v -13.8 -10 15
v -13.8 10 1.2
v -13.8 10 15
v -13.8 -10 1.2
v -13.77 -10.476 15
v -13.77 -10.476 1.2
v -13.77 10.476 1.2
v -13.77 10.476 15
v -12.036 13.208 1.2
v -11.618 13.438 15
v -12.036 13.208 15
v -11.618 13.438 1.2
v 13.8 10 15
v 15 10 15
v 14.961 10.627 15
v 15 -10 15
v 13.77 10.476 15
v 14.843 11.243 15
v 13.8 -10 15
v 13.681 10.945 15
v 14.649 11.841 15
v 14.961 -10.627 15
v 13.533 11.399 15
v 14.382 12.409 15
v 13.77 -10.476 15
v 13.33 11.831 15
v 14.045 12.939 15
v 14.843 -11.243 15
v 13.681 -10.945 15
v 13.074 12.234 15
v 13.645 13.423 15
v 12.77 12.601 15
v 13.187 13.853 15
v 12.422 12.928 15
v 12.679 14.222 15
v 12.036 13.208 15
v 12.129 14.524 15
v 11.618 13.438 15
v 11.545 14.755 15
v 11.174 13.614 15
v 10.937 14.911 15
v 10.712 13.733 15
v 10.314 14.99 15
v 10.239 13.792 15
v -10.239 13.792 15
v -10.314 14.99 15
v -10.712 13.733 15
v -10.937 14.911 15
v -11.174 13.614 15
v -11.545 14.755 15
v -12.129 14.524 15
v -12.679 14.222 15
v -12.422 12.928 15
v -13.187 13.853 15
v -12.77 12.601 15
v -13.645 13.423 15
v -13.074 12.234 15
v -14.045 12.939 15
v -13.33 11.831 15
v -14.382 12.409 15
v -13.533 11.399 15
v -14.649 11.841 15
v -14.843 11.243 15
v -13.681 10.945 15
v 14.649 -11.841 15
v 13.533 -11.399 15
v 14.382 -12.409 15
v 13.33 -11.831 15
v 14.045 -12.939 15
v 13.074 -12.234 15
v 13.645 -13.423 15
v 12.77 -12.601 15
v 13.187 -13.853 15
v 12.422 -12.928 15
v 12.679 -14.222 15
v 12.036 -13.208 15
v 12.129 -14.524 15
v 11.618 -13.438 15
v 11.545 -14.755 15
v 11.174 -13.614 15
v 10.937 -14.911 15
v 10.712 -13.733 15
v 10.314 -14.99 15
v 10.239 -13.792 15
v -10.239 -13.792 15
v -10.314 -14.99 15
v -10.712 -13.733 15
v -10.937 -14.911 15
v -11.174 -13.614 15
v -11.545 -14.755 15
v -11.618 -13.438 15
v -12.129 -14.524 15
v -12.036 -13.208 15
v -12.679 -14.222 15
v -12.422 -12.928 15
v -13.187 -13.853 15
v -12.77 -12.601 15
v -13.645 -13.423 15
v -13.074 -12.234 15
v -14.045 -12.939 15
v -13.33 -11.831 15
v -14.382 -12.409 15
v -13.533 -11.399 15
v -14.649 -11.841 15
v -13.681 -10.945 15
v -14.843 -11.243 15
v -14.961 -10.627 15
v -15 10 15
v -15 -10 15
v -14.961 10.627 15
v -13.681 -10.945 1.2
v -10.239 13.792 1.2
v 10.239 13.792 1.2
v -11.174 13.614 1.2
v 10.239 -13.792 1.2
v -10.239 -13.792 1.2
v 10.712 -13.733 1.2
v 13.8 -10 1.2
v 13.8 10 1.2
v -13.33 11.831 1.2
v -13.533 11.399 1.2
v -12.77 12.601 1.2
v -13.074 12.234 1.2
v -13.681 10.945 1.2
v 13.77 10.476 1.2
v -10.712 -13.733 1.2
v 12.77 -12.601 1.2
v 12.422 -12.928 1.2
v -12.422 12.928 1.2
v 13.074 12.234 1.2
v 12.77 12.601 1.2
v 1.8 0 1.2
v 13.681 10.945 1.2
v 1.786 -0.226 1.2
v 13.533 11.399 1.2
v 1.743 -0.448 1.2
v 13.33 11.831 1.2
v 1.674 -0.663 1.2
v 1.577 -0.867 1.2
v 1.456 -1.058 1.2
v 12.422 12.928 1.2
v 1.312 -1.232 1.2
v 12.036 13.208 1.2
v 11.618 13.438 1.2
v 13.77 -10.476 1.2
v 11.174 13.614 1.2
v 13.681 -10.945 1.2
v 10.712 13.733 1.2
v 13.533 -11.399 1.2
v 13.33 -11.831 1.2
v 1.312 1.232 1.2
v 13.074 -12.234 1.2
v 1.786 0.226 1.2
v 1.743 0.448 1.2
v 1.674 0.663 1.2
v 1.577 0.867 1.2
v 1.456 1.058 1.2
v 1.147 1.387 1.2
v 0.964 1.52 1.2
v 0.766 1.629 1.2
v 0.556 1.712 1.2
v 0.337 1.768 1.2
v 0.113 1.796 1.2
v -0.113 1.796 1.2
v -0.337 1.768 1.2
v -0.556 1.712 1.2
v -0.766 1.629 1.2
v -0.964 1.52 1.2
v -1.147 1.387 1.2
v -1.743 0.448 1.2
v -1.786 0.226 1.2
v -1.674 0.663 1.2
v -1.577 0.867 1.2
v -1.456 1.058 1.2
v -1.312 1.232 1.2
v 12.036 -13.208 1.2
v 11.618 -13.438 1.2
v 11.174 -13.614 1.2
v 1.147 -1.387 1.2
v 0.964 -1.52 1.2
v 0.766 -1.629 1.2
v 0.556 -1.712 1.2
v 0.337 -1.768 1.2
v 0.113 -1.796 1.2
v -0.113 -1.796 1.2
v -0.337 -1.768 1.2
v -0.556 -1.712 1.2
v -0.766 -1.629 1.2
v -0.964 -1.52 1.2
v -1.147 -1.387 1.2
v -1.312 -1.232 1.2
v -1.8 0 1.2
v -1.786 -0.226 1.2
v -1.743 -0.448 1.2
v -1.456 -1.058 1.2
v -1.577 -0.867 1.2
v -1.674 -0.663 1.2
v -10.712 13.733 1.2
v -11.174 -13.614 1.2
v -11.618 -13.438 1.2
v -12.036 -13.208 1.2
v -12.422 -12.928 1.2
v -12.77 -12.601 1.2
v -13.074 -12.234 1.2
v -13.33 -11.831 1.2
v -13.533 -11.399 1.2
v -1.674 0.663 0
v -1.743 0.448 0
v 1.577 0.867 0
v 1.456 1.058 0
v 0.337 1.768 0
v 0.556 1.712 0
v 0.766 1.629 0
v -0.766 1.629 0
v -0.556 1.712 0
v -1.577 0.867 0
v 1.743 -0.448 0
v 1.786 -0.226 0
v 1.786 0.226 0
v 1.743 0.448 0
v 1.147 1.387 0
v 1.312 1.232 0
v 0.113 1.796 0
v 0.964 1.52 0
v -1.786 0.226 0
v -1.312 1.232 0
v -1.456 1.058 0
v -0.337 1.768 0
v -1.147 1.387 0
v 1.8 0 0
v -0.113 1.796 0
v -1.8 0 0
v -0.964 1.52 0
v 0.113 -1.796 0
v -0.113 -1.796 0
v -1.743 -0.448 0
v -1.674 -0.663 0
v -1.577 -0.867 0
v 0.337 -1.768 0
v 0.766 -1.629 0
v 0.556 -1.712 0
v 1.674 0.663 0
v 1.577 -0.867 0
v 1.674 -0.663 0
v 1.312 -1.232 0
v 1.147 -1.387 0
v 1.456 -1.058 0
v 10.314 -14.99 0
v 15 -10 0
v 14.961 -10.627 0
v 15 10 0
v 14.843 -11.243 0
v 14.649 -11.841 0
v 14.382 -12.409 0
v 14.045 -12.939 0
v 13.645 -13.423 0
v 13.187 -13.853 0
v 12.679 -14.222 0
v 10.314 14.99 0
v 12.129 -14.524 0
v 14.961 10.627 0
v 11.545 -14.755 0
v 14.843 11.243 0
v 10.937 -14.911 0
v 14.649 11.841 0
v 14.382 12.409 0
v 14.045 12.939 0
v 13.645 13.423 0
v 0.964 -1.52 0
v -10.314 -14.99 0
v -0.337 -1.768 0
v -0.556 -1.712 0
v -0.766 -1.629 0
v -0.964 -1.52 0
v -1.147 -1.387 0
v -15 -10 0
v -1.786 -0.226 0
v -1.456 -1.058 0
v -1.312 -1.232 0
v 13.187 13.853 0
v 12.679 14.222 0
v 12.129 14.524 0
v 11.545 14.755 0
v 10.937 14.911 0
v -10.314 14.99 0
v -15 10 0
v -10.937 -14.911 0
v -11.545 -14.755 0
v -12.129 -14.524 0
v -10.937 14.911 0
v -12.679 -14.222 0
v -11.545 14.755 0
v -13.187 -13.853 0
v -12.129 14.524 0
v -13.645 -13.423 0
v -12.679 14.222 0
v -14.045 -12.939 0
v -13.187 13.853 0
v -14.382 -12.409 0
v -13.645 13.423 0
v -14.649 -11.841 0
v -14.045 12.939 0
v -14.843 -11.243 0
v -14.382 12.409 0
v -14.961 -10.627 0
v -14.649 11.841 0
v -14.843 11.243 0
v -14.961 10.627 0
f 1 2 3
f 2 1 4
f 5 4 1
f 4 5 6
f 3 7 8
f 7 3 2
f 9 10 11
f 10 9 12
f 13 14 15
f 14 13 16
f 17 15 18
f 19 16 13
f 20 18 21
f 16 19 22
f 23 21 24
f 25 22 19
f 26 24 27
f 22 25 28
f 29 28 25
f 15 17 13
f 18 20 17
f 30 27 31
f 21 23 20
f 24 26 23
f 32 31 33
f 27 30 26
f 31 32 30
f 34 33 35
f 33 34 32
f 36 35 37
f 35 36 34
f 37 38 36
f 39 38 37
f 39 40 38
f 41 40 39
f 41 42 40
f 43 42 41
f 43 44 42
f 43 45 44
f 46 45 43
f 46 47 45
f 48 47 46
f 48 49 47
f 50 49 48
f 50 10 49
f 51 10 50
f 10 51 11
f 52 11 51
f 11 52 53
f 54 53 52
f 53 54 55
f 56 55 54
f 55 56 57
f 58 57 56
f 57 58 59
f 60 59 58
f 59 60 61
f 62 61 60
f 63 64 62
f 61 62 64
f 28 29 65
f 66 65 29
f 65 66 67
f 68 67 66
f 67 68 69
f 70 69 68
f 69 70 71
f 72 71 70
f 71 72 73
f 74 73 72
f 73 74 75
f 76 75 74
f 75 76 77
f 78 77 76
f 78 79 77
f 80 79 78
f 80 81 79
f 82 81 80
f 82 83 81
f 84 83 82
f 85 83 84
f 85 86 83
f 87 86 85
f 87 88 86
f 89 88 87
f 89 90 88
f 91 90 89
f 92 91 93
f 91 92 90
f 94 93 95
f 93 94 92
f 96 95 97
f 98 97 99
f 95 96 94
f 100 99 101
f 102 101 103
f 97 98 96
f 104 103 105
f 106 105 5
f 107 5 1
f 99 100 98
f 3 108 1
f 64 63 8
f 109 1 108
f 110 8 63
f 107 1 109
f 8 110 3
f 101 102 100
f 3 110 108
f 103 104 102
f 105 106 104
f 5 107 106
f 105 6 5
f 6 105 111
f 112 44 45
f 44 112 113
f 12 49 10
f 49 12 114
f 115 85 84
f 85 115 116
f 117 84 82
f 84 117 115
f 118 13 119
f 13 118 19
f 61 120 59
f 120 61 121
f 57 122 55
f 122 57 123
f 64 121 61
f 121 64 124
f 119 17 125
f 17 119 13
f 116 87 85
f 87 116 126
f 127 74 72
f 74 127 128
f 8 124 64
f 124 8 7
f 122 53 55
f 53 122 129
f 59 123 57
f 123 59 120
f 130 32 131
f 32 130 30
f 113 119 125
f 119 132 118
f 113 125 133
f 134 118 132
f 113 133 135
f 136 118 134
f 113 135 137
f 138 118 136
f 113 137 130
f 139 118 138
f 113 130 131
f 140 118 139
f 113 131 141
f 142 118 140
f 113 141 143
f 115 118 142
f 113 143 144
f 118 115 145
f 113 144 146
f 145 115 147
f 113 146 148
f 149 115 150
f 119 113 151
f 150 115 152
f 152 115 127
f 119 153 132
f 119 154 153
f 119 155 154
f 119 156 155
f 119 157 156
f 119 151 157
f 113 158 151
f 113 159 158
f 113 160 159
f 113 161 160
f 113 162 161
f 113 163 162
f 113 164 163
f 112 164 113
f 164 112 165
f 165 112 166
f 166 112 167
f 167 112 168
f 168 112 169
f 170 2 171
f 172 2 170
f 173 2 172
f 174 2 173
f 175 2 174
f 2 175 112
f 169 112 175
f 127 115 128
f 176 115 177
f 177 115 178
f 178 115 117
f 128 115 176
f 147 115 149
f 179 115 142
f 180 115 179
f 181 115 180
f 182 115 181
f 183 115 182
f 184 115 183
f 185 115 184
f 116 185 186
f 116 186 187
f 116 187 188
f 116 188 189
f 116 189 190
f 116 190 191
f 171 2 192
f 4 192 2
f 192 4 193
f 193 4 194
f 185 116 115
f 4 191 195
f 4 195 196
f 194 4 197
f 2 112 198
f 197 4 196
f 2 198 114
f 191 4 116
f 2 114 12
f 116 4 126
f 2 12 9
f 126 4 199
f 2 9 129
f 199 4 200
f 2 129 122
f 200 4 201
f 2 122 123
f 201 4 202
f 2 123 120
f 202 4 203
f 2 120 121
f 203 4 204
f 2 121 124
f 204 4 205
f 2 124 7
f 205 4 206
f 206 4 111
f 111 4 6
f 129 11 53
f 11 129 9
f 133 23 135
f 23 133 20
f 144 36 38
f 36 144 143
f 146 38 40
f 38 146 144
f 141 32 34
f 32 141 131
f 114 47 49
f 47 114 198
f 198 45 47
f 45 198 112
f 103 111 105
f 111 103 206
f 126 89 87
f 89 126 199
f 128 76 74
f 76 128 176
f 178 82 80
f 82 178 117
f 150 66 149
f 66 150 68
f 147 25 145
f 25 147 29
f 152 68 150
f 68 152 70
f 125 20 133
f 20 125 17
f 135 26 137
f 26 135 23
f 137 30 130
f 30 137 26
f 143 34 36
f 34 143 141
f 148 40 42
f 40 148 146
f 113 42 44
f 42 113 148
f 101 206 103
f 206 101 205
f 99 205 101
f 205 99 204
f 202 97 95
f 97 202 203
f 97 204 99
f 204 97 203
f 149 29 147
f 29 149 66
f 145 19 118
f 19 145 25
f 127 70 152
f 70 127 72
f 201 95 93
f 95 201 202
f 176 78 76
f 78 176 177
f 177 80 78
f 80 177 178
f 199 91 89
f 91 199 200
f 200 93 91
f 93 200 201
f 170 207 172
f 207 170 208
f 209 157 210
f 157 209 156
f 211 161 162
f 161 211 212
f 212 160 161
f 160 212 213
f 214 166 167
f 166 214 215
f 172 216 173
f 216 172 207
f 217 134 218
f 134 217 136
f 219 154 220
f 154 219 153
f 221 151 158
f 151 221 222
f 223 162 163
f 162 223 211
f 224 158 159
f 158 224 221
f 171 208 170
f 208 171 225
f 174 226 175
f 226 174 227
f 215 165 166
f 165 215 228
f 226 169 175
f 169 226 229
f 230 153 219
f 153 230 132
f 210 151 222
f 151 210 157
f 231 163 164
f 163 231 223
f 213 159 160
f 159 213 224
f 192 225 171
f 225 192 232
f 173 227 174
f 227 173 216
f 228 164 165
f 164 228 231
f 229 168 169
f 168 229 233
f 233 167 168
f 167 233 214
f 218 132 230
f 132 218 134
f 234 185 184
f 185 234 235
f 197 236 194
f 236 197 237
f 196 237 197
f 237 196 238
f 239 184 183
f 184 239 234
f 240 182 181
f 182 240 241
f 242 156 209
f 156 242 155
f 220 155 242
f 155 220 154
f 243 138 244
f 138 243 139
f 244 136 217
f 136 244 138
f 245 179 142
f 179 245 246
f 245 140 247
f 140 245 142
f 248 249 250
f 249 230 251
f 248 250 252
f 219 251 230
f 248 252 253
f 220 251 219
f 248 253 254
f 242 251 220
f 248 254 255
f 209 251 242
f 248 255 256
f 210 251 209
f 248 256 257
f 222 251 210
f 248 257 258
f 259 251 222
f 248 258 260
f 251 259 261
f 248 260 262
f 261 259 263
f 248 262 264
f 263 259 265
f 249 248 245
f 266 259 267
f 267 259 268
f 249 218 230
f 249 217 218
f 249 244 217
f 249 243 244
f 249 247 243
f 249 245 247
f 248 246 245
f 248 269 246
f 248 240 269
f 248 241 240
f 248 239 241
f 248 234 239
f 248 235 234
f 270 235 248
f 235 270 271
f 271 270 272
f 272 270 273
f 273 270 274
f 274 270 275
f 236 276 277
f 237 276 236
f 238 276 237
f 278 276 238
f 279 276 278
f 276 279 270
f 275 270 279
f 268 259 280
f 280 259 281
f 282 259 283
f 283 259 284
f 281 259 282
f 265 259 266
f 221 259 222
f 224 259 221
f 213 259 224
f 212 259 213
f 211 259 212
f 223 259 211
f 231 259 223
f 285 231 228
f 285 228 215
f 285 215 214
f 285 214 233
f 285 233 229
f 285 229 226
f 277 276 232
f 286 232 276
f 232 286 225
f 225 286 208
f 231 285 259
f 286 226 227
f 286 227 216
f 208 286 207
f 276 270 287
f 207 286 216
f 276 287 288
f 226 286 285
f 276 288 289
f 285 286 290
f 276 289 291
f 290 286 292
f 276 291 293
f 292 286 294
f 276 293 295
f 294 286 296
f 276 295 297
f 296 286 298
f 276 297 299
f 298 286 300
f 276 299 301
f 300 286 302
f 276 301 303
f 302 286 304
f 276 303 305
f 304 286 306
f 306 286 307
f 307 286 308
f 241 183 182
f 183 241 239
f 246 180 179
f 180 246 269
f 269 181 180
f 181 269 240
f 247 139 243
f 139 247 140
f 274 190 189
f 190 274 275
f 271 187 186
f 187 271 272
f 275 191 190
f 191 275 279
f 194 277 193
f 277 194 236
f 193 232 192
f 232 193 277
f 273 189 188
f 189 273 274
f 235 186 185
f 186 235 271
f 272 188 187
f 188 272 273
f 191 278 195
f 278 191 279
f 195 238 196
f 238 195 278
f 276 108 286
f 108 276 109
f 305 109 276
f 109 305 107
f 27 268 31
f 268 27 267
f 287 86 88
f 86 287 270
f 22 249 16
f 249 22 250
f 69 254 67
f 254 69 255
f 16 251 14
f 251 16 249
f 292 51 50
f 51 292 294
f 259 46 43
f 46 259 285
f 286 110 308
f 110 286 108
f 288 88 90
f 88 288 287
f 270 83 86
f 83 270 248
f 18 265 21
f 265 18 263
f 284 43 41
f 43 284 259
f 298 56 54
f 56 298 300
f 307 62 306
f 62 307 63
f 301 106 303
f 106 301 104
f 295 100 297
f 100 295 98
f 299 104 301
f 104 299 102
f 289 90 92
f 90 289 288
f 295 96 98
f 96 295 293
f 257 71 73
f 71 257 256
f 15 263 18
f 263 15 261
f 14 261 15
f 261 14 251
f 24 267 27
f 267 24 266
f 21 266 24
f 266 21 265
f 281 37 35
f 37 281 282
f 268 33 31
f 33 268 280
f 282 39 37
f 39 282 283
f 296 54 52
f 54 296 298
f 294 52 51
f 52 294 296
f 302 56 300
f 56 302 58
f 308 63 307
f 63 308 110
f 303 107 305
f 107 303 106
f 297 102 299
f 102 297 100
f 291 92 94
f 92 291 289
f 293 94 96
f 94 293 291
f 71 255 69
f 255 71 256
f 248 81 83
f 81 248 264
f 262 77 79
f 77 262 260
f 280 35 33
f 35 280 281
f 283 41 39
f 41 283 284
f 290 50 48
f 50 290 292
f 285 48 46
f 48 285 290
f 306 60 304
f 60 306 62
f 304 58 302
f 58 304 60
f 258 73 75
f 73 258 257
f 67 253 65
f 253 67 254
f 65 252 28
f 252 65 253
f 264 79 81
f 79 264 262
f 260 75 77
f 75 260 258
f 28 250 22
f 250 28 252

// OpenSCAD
$fn = 50;


difference() {
	union() {
		hull() {
			translate(v = [-10.0000000000, 10.0000000000, 0]) {
				cylinder(h = 15, r = 5);
			}
			translate(v = [10.0000000000, 10.0000000000, 0]) {
				cylinder(h = 15, r = 5);
			}
			translate(v = [-10.0000000000, -10.0000000000, 0]) {
				cylinder(h = 15, r = 5);
			}
			translate(v = [10.0000000000, -10.0000000000, 0]) {
				cylinder(h = 15, r = 5);
			}
		}
	}
	union() {
		translate(v = [0, 0, 1.2000000000]) {
			hull() {
				translate(v = [-10.0000000000, 10.0000000000, 0]) {
					cylinder(h = 13.8000000000, r = 3.8000000000);
				}
				translate(v = [10.0000000000, 10.0000000000, 0]) {
					cylinder(h = 13.8000000000, r = 3.8000000000);
				}
				translate(v = [-10.0000000000, -10.0000000000, 0]) {
					cylinder(h = 13.8000000000, r = 3.8000000000);
				}
				translate(v = [10.0000000000, -10.0000000000, 0]) {
					cylinder(h = 13.8000000000, r = 3.8000000000);
				}
			}
		}
		#cylinder(h = 1.2000000000, r = 1.8000000000);
	}
}
